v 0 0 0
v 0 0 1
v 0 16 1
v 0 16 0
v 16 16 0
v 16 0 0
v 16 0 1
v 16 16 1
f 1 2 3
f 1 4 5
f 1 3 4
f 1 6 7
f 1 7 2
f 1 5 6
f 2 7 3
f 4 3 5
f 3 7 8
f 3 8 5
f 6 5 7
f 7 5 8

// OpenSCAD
/* Warning, this is a very basic generator with a lot of approximation 
input data : [TQFP, R9X, 16x1 6x 1mm, 144, , B, C04-00155B]
generated by com.zoubworld.electronics.cad.model3d.Basic
Date : Sun Feb 15 10:50:48 CET 2026
*/

//body
color("black")
translate([0,0,0])
cube([16.0,16.0,1.0], center=false);
